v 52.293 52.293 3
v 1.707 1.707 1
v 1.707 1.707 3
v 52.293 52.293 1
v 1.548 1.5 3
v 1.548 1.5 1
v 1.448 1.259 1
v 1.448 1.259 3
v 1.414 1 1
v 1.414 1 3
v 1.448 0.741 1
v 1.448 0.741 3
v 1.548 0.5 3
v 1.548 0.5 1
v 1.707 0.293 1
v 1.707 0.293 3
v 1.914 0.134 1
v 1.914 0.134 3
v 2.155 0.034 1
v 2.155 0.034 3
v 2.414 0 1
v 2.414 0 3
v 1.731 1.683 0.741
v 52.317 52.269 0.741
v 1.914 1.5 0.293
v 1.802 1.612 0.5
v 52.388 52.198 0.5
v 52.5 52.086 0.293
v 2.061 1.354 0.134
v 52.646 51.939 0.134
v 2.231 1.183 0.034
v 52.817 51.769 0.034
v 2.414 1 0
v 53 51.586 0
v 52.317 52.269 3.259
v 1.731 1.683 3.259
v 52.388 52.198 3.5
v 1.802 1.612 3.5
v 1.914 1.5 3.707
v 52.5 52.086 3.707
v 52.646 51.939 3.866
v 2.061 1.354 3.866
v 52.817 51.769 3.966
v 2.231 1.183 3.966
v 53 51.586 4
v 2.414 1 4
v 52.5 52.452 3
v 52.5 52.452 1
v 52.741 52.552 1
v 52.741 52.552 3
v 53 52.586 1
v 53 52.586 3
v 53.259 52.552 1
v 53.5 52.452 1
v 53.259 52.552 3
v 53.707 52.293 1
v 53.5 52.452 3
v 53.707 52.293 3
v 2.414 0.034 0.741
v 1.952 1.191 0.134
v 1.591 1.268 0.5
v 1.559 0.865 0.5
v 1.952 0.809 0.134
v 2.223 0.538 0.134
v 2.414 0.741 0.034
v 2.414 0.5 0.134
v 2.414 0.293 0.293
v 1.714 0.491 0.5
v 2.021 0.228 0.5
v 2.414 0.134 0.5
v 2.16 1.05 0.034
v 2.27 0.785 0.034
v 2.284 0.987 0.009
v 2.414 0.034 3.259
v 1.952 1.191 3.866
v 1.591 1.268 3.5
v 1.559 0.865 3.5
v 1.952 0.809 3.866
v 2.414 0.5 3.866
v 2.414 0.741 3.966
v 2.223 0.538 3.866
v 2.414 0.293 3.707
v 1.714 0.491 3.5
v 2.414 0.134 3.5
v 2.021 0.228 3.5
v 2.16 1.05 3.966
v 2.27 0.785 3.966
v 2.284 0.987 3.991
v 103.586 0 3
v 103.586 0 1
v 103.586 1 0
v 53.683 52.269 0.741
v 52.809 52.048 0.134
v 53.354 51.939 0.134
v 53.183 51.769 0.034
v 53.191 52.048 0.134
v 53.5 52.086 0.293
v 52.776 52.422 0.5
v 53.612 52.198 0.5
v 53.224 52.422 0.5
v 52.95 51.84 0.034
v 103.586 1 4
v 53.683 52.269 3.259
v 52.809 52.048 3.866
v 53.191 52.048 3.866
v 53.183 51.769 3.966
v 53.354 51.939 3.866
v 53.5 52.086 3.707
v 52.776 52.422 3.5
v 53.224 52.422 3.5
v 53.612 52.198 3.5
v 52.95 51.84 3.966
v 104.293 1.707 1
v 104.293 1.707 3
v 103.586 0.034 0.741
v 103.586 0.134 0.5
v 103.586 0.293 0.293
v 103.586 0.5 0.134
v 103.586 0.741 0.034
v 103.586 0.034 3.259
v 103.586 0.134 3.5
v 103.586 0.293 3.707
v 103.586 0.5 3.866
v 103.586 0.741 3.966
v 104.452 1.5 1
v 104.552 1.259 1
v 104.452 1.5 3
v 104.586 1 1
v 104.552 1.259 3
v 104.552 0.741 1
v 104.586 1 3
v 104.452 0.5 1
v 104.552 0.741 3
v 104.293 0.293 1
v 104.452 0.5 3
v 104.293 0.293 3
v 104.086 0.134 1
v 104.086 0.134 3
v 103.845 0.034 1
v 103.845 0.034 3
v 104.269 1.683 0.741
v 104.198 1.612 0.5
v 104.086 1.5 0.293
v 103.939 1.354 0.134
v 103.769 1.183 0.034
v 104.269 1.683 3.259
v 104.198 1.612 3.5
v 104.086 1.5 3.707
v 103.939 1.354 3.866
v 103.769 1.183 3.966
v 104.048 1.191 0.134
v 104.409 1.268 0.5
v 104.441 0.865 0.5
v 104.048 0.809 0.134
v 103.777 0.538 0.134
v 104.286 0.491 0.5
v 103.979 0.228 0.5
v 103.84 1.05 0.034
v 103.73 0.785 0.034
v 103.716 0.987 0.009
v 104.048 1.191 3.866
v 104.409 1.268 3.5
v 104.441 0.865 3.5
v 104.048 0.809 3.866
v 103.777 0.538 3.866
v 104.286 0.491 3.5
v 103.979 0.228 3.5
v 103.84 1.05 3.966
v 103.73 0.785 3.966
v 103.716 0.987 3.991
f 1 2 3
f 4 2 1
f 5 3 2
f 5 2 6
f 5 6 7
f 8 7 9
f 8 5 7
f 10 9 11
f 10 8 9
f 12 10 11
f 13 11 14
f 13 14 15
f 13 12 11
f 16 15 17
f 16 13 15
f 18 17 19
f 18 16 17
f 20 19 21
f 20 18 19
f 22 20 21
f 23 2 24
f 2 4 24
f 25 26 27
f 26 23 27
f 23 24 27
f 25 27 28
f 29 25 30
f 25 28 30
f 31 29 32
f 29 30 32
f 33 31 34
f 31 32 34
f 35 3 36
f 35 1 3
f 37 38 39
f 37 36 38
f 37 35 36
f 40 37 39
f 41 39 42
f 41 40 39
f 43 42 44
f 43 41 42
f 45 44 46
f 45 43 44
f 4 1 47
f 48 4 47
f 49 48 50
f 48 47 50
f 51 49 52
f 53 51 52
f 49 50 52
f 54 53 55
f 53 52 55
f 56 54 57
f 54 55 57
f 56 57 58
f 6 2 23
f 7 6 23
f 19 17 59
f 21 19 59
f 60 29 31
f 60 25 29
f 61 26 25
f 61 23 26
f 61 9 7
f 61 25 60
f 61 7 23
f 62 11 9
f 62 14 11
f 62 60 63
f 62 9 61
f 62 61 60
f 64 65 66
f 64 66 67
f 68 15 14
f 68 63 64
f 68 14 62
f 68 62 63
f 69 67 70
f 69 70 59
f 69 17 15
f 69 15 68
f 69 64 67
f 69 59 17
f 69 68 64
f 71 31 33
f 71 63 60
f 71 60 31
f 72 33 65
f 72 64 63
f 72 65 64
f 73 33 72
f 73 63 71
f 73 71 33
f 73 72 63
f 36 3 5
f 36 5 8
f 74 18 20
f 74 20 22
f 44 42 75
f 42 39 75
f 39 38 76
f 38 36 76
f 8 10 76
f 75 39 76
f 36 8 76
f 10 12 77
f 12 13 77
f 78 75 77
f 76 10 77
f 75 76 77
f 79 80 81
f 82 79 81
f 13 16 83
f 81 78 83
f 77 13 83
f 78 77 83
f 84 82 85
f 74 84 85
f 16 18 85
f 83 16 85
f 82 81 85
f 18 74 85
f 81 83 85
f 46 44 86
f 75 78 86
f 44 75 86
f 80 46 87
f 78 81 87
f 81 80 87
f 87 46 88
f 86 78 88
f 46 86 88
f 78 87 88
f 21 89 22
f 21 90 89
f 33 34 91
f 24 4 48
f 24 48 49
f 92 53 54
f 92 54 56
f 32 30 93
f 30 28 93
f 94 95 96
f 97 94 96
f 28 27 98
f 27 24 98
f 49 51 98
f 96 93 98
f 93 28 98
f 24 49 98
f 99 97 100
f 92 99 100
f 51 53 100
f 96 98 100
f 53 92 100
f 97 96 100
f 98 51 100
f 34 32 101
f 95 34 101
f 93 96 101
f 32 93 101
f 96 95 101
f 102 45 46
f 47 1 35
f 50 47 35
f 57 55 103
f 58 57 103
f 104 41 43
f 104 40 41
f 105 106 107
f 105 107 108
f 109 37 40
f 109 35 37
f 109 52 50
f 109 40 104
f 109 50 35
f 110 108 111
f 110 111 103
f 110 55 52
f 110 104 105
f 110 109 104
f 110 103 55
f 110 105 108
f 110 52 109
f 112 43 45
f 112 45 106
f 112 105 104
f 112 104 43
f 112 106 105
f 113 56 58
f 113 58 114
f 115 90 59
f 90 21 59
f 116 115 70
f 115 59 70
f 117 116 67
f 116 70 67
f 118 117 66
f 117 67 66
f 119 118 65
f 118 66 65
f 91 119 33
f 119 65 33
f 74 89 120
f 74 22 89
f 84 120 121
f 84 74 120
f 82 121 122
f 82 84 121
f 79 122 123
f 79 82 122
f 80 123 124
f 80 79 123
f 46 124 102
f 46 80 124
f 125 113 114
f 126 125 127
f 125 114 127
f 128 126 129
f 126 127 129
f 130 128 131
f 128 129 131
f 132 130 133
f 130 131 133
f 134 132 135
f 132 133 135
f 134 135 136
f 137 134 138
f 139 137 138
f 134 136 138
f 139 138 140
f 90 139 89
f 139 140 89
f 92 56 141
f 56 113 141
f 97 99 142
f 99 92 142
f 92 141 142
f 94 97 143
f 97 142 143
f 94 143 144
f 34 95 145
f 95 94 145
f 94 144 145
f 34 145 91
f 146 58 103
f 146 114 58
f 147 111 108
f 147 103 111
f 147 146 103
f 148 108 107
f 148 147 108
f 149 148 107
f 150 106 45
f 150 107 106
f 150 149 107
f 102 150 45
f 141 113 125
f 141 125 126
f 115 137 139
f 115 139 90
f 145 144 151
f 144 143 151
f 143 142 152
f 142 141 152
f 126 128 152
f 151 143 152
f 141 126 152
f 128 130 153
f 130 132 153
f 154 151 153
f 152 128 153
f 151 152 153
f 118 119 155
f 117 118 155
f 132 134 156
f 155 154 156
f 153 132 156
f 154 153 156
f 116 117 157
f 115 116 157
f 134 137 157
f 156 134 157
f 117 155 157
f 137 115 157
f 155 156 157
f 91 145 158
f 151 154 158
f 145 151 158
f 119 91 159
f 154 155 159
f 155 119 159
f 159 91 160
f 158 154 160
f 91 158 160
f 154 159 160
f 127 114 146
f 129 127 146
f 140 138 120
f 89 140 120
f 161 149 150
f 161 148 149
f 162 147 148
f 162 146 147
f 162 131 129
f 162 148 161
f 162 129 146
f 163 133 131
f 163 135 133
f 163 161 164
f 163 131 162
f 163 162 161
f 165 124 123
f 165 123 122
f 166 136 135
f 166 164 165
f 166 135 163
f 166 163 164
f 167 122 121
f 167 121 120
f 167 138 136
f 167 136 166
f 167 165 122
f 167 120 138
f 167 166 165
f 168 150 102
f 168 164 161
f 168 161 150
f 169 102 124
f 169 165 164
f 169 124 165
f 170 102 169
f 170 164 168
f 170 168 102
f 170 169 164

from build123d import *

# Parameters (mm, degrees)
PAD_DEPTH = 4
FILLET_R  = 1


with BuildPart() as part:
    # Sketch → Pad (new body)
    with BuildSketch(Plane.XY):
        Polygon((0, 0), (53, 53), (106, 0), align=None)
    extrude(amount=PAD_DEPTH)

    # Fillet
    fillet_edges = [part.edges().sort_by_distance(p)[0] for p in [
        (0, 0, 2),
        (53, 53, 2),
        (26.5, 26.5, 0),
        (26.5, 26.5, 4),
        (106, 0, 2),
        (79.5, 26.5, 0),
        (79.5, 26.5, 4),
        (53, 0, 0),
        (53, 0, 4),
    ]]
    fillet(fillet_edges, radius=FILLET_R)


solid = part.part
